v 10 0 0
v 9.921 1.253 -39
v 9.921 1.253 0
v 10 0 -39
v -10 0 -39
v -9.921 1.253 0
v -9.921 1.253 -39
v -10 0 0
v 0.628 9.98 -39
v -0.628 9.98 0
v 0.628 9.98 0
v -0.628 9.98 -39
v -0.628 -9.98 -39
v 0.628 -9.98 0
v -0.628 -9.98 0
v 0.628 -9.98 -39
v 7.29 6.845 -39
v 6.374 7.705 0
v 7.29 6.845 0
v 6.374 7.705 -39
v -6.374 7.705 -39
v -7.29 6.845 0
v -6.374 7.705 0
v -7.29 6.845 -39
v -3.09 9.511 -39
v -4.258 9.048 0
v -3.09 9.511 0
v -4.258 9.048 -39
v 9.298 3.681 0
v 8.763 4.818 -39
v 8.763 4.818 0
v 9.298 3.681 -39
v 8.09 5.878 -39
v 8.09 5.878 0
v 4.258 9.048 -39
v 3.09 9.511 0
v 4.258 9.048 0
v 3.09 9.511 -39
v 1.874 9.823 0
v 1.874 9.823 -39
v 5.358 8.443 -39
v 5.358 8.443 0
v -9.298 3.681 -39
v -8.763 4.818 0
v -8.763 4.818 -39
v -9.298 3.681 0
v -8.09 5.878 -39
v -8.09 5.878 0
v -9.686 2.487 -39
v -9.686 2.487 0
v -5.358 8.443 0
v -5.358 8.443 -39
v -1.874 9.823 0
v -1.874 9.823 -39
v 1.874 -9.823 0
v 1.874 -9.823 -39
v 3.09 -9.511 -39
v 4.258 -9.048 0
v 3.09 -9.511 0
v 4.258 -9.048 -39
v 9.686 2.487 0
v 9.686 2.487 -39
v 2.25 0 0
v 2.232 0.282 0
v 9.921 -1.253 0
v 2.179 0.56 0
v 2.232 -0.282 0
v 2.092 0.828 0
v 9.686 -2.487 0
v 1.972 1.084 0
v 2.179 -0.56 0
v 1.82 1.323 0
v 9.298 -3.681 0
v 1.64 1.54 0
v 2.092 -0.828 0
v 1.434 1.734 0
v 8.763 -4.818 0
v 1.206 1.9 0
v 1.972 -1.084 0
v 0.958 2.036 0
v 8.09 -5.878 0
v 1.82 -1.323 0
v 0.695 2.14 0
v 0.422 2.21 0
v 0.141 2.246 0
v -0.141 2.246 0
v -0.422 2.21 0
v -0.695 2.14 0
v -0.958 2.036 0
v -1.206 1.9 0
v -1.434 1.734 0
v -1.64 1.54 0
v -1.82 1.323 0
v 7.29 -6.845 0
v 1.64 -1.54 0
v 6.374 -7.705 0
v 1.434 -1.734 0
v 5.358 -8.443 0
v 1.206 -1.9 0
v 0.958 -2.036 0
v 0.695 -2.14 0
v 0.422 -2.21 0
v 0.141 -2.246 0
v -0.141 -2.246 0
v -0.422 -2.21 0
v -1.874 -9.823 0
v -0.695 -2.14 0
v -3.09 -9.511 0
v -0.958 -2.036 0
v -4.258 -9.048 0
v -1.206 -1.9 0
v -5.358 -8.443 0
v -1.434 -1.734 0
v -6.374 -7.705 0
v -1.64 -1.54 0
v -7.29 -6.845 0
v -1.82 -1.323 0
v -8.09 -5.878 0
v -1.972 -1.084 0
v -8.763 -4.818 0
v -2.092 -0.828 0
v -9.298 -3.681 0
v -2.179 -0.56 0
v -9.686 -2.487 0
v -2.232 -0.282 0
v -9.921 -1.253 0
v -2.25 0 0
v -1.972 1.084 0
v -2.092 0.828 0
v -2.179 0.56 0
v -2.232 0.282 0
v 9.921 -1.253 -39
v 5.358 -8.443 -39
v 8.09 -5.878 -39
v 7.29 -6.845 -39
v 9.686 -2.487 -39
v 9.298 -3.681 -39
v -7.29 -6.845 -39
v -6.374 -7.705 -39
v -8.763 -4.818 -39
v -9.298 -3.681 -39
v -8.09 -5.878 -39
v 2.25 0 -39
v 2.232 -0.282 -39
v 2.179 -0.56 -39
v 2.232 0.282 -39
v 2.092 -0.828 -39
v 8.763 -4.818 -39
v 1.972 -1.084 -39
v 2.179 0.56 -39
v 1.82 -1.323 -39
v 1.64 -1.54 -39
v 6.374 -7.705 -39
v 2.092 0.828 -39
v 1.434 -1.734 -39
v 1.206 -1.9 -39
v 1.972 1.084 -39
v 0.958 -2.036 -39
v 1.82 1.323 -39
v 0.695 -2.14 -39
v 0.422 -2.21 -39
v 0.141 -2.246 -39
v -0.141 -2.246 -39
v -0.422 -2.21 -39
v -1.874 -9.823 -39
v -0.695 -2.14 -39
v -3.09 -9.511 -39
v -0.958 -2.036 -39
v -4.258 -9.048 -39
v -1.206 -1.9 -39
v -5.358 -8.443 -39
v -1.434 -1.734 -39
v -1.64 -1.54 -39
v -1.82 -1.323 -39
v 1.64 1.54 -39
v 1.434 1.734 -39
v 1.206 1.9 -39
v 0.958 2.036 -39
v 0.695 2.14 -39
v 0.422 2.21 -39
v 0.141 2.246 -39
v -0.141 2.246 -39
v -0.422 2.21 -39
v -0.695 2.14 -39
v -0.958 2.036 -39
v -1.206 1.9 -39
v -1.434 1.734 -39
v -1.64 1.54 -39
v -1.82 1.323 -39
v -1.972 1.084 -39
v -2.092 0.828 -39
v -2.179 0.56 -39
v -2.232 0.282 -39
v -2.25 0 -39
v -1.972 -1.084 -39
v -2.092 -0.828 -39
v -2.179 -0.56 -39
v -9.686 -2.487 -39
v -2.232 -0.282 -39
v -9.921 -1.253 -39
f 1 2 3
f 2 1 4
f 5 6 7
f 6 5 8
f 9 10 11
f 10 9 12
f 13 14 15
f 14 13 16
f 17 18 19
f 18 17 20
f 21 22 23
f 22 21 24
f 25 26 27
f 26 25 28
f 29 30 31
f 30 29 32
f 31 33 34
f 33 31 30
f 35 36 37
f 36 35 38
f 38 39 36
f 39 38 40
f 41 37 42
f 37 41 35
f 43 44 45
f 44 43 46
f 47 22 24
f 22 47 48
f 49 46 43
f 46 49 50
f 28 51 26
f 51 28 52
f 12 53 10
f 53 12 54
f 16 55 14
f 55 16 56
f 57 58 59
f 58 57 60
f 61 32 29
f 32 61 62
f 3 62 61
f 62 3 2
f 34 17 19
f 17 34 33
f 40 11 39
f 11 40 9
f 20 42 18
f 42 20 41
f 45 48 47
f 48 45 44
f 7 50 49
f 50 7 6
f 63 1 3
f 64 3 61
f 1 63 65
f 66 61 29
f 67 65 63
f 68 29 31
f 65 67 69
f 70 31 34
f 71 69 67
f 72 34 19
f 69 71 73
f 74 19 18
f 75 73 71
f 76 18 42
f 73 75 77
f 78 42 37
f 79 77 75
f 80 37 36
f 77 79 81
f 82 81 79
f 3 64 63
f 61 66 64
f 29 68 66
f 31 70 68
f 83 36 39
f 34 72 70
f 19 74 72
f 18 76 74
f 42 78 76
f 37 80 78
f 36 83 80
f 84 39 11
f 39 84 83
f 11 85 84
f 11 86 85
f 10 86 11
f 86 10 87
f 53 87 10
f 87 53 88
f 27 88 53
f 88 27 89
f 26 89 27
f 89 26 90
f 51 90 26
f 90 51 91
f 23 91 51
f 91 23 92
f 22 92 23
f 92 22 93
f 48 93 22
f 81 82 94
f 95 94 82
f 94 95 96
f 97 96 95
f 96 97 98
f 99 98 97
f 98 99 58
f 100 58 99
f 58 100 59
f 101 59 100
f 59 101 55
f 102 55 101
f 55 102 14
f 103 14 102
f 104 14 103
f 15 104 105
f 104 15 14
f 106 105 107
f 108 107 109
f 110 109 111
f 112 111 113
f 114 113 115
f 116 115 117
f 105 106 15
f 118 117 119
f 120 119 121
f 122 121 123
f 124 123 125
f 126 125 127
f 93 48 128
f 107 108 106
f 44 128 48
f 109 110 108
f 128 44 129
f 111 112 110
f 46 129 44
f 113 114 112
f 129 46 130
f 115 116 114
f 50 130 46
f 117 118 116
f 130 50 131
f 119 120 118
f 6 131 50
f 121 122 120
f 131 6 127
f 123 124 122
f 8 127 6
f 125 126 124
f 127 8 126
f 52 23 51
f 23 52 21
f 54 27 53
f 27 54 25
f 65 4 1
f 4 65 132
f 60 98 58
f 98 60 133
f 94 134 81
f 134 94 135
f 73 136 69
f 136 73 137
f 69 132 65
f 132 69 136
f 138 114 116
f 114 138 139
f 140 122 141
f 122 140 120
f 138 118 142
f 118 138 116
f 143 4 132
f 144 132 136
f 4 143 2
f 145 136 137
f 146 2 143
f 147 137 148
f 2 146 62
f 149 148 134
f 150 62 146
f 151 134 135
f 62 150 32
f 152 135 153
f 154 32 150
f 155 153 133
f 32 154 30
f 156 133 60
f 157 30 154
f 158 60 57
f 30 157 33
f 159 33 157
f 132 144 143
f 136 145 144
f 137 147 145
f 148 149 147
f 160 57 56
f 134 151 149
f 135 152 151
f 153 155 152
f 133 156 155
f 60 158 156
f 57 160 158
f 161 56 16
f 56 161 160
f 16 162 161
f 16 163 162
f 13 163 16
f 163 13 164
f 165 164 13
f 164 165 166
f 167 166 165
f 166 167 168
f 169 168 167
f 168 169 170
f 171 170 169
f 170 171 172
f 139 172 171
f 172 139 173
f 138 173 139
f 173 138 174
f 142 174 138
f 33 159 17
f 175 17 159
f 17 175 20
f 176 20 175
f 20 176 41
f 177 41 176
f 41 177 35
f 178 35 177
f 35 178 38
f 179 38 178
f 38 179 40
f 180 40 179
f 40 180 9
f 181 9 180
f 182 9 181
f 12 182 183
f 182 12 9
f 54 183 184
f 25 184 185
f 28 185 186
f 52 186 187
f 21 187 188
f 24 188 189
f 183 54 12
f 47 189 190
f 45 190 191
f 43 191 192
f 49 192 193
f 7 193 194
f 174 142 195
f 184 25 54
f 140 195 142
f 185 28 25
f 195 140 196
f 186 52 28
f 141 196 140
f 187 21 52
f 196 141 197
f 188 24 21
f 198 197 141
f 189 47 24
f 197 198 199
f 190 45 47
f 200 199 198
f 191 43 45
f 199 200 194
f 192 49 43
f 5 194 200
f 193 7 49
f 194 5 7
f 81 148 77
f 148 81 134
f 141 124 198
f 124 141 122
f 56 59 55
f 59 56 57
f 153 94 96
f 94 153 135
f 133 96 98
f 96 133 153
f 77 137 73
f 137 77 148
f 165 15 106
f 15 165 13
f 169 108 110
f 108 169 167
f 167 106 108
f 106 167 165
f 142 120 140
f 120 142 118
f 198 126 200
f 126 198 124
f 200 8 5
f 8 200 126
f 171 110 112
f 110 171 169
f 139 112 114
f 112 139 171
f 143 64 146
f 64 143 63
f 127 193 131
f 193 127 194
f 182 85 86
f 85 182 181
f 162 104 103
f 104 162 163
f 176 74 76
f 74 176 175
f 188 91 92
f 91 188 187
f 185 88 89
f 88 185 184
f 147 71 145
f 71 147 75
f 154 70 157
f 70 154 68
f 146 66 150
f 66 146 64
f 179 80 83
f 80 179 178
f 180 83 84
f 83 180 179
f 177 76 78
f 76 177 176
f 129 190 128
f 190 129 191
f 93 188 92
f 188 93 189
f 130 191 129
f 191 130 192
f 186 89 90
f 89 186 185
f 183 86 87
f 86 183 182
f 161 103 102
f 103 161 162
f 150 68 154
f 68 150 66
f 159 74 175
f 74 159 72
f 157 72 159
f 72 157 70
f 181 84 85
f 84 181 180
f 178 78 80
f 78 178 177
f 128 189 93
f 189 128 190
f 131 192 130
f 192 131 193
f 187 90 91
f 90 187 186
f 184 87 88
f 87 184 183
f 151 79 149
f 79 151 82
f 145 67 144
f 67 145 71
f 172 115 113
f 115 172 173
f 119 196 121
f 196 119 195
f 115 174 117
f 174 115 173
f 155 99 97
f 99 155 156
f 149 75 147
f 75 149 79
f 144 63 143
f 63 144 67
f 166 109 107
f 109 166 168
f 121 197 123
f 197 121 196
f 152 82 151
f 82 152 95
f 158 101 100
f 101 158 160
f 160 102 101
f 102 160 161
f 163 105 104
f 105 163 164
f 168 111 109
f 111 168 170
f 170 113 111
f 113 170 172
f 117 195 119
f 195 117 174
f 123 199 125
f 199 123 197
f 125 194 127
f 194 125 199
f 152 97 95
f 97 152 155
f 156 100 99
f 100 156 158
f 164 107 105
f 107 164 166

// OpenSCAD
$fn = 50;


difference() {
	union() {
		translate(v = [0, 0, -39.0000000000]) {
			cylinder(h = 39, r = 10.0000000000);
		}
		cylinder(h = 0, r = 13.0000000000);
	}
	union() {
		#translate(v = [0, 0, -39]) {
			cylinder(h = 39, r = 2.2500000000);
		}
	}
}
